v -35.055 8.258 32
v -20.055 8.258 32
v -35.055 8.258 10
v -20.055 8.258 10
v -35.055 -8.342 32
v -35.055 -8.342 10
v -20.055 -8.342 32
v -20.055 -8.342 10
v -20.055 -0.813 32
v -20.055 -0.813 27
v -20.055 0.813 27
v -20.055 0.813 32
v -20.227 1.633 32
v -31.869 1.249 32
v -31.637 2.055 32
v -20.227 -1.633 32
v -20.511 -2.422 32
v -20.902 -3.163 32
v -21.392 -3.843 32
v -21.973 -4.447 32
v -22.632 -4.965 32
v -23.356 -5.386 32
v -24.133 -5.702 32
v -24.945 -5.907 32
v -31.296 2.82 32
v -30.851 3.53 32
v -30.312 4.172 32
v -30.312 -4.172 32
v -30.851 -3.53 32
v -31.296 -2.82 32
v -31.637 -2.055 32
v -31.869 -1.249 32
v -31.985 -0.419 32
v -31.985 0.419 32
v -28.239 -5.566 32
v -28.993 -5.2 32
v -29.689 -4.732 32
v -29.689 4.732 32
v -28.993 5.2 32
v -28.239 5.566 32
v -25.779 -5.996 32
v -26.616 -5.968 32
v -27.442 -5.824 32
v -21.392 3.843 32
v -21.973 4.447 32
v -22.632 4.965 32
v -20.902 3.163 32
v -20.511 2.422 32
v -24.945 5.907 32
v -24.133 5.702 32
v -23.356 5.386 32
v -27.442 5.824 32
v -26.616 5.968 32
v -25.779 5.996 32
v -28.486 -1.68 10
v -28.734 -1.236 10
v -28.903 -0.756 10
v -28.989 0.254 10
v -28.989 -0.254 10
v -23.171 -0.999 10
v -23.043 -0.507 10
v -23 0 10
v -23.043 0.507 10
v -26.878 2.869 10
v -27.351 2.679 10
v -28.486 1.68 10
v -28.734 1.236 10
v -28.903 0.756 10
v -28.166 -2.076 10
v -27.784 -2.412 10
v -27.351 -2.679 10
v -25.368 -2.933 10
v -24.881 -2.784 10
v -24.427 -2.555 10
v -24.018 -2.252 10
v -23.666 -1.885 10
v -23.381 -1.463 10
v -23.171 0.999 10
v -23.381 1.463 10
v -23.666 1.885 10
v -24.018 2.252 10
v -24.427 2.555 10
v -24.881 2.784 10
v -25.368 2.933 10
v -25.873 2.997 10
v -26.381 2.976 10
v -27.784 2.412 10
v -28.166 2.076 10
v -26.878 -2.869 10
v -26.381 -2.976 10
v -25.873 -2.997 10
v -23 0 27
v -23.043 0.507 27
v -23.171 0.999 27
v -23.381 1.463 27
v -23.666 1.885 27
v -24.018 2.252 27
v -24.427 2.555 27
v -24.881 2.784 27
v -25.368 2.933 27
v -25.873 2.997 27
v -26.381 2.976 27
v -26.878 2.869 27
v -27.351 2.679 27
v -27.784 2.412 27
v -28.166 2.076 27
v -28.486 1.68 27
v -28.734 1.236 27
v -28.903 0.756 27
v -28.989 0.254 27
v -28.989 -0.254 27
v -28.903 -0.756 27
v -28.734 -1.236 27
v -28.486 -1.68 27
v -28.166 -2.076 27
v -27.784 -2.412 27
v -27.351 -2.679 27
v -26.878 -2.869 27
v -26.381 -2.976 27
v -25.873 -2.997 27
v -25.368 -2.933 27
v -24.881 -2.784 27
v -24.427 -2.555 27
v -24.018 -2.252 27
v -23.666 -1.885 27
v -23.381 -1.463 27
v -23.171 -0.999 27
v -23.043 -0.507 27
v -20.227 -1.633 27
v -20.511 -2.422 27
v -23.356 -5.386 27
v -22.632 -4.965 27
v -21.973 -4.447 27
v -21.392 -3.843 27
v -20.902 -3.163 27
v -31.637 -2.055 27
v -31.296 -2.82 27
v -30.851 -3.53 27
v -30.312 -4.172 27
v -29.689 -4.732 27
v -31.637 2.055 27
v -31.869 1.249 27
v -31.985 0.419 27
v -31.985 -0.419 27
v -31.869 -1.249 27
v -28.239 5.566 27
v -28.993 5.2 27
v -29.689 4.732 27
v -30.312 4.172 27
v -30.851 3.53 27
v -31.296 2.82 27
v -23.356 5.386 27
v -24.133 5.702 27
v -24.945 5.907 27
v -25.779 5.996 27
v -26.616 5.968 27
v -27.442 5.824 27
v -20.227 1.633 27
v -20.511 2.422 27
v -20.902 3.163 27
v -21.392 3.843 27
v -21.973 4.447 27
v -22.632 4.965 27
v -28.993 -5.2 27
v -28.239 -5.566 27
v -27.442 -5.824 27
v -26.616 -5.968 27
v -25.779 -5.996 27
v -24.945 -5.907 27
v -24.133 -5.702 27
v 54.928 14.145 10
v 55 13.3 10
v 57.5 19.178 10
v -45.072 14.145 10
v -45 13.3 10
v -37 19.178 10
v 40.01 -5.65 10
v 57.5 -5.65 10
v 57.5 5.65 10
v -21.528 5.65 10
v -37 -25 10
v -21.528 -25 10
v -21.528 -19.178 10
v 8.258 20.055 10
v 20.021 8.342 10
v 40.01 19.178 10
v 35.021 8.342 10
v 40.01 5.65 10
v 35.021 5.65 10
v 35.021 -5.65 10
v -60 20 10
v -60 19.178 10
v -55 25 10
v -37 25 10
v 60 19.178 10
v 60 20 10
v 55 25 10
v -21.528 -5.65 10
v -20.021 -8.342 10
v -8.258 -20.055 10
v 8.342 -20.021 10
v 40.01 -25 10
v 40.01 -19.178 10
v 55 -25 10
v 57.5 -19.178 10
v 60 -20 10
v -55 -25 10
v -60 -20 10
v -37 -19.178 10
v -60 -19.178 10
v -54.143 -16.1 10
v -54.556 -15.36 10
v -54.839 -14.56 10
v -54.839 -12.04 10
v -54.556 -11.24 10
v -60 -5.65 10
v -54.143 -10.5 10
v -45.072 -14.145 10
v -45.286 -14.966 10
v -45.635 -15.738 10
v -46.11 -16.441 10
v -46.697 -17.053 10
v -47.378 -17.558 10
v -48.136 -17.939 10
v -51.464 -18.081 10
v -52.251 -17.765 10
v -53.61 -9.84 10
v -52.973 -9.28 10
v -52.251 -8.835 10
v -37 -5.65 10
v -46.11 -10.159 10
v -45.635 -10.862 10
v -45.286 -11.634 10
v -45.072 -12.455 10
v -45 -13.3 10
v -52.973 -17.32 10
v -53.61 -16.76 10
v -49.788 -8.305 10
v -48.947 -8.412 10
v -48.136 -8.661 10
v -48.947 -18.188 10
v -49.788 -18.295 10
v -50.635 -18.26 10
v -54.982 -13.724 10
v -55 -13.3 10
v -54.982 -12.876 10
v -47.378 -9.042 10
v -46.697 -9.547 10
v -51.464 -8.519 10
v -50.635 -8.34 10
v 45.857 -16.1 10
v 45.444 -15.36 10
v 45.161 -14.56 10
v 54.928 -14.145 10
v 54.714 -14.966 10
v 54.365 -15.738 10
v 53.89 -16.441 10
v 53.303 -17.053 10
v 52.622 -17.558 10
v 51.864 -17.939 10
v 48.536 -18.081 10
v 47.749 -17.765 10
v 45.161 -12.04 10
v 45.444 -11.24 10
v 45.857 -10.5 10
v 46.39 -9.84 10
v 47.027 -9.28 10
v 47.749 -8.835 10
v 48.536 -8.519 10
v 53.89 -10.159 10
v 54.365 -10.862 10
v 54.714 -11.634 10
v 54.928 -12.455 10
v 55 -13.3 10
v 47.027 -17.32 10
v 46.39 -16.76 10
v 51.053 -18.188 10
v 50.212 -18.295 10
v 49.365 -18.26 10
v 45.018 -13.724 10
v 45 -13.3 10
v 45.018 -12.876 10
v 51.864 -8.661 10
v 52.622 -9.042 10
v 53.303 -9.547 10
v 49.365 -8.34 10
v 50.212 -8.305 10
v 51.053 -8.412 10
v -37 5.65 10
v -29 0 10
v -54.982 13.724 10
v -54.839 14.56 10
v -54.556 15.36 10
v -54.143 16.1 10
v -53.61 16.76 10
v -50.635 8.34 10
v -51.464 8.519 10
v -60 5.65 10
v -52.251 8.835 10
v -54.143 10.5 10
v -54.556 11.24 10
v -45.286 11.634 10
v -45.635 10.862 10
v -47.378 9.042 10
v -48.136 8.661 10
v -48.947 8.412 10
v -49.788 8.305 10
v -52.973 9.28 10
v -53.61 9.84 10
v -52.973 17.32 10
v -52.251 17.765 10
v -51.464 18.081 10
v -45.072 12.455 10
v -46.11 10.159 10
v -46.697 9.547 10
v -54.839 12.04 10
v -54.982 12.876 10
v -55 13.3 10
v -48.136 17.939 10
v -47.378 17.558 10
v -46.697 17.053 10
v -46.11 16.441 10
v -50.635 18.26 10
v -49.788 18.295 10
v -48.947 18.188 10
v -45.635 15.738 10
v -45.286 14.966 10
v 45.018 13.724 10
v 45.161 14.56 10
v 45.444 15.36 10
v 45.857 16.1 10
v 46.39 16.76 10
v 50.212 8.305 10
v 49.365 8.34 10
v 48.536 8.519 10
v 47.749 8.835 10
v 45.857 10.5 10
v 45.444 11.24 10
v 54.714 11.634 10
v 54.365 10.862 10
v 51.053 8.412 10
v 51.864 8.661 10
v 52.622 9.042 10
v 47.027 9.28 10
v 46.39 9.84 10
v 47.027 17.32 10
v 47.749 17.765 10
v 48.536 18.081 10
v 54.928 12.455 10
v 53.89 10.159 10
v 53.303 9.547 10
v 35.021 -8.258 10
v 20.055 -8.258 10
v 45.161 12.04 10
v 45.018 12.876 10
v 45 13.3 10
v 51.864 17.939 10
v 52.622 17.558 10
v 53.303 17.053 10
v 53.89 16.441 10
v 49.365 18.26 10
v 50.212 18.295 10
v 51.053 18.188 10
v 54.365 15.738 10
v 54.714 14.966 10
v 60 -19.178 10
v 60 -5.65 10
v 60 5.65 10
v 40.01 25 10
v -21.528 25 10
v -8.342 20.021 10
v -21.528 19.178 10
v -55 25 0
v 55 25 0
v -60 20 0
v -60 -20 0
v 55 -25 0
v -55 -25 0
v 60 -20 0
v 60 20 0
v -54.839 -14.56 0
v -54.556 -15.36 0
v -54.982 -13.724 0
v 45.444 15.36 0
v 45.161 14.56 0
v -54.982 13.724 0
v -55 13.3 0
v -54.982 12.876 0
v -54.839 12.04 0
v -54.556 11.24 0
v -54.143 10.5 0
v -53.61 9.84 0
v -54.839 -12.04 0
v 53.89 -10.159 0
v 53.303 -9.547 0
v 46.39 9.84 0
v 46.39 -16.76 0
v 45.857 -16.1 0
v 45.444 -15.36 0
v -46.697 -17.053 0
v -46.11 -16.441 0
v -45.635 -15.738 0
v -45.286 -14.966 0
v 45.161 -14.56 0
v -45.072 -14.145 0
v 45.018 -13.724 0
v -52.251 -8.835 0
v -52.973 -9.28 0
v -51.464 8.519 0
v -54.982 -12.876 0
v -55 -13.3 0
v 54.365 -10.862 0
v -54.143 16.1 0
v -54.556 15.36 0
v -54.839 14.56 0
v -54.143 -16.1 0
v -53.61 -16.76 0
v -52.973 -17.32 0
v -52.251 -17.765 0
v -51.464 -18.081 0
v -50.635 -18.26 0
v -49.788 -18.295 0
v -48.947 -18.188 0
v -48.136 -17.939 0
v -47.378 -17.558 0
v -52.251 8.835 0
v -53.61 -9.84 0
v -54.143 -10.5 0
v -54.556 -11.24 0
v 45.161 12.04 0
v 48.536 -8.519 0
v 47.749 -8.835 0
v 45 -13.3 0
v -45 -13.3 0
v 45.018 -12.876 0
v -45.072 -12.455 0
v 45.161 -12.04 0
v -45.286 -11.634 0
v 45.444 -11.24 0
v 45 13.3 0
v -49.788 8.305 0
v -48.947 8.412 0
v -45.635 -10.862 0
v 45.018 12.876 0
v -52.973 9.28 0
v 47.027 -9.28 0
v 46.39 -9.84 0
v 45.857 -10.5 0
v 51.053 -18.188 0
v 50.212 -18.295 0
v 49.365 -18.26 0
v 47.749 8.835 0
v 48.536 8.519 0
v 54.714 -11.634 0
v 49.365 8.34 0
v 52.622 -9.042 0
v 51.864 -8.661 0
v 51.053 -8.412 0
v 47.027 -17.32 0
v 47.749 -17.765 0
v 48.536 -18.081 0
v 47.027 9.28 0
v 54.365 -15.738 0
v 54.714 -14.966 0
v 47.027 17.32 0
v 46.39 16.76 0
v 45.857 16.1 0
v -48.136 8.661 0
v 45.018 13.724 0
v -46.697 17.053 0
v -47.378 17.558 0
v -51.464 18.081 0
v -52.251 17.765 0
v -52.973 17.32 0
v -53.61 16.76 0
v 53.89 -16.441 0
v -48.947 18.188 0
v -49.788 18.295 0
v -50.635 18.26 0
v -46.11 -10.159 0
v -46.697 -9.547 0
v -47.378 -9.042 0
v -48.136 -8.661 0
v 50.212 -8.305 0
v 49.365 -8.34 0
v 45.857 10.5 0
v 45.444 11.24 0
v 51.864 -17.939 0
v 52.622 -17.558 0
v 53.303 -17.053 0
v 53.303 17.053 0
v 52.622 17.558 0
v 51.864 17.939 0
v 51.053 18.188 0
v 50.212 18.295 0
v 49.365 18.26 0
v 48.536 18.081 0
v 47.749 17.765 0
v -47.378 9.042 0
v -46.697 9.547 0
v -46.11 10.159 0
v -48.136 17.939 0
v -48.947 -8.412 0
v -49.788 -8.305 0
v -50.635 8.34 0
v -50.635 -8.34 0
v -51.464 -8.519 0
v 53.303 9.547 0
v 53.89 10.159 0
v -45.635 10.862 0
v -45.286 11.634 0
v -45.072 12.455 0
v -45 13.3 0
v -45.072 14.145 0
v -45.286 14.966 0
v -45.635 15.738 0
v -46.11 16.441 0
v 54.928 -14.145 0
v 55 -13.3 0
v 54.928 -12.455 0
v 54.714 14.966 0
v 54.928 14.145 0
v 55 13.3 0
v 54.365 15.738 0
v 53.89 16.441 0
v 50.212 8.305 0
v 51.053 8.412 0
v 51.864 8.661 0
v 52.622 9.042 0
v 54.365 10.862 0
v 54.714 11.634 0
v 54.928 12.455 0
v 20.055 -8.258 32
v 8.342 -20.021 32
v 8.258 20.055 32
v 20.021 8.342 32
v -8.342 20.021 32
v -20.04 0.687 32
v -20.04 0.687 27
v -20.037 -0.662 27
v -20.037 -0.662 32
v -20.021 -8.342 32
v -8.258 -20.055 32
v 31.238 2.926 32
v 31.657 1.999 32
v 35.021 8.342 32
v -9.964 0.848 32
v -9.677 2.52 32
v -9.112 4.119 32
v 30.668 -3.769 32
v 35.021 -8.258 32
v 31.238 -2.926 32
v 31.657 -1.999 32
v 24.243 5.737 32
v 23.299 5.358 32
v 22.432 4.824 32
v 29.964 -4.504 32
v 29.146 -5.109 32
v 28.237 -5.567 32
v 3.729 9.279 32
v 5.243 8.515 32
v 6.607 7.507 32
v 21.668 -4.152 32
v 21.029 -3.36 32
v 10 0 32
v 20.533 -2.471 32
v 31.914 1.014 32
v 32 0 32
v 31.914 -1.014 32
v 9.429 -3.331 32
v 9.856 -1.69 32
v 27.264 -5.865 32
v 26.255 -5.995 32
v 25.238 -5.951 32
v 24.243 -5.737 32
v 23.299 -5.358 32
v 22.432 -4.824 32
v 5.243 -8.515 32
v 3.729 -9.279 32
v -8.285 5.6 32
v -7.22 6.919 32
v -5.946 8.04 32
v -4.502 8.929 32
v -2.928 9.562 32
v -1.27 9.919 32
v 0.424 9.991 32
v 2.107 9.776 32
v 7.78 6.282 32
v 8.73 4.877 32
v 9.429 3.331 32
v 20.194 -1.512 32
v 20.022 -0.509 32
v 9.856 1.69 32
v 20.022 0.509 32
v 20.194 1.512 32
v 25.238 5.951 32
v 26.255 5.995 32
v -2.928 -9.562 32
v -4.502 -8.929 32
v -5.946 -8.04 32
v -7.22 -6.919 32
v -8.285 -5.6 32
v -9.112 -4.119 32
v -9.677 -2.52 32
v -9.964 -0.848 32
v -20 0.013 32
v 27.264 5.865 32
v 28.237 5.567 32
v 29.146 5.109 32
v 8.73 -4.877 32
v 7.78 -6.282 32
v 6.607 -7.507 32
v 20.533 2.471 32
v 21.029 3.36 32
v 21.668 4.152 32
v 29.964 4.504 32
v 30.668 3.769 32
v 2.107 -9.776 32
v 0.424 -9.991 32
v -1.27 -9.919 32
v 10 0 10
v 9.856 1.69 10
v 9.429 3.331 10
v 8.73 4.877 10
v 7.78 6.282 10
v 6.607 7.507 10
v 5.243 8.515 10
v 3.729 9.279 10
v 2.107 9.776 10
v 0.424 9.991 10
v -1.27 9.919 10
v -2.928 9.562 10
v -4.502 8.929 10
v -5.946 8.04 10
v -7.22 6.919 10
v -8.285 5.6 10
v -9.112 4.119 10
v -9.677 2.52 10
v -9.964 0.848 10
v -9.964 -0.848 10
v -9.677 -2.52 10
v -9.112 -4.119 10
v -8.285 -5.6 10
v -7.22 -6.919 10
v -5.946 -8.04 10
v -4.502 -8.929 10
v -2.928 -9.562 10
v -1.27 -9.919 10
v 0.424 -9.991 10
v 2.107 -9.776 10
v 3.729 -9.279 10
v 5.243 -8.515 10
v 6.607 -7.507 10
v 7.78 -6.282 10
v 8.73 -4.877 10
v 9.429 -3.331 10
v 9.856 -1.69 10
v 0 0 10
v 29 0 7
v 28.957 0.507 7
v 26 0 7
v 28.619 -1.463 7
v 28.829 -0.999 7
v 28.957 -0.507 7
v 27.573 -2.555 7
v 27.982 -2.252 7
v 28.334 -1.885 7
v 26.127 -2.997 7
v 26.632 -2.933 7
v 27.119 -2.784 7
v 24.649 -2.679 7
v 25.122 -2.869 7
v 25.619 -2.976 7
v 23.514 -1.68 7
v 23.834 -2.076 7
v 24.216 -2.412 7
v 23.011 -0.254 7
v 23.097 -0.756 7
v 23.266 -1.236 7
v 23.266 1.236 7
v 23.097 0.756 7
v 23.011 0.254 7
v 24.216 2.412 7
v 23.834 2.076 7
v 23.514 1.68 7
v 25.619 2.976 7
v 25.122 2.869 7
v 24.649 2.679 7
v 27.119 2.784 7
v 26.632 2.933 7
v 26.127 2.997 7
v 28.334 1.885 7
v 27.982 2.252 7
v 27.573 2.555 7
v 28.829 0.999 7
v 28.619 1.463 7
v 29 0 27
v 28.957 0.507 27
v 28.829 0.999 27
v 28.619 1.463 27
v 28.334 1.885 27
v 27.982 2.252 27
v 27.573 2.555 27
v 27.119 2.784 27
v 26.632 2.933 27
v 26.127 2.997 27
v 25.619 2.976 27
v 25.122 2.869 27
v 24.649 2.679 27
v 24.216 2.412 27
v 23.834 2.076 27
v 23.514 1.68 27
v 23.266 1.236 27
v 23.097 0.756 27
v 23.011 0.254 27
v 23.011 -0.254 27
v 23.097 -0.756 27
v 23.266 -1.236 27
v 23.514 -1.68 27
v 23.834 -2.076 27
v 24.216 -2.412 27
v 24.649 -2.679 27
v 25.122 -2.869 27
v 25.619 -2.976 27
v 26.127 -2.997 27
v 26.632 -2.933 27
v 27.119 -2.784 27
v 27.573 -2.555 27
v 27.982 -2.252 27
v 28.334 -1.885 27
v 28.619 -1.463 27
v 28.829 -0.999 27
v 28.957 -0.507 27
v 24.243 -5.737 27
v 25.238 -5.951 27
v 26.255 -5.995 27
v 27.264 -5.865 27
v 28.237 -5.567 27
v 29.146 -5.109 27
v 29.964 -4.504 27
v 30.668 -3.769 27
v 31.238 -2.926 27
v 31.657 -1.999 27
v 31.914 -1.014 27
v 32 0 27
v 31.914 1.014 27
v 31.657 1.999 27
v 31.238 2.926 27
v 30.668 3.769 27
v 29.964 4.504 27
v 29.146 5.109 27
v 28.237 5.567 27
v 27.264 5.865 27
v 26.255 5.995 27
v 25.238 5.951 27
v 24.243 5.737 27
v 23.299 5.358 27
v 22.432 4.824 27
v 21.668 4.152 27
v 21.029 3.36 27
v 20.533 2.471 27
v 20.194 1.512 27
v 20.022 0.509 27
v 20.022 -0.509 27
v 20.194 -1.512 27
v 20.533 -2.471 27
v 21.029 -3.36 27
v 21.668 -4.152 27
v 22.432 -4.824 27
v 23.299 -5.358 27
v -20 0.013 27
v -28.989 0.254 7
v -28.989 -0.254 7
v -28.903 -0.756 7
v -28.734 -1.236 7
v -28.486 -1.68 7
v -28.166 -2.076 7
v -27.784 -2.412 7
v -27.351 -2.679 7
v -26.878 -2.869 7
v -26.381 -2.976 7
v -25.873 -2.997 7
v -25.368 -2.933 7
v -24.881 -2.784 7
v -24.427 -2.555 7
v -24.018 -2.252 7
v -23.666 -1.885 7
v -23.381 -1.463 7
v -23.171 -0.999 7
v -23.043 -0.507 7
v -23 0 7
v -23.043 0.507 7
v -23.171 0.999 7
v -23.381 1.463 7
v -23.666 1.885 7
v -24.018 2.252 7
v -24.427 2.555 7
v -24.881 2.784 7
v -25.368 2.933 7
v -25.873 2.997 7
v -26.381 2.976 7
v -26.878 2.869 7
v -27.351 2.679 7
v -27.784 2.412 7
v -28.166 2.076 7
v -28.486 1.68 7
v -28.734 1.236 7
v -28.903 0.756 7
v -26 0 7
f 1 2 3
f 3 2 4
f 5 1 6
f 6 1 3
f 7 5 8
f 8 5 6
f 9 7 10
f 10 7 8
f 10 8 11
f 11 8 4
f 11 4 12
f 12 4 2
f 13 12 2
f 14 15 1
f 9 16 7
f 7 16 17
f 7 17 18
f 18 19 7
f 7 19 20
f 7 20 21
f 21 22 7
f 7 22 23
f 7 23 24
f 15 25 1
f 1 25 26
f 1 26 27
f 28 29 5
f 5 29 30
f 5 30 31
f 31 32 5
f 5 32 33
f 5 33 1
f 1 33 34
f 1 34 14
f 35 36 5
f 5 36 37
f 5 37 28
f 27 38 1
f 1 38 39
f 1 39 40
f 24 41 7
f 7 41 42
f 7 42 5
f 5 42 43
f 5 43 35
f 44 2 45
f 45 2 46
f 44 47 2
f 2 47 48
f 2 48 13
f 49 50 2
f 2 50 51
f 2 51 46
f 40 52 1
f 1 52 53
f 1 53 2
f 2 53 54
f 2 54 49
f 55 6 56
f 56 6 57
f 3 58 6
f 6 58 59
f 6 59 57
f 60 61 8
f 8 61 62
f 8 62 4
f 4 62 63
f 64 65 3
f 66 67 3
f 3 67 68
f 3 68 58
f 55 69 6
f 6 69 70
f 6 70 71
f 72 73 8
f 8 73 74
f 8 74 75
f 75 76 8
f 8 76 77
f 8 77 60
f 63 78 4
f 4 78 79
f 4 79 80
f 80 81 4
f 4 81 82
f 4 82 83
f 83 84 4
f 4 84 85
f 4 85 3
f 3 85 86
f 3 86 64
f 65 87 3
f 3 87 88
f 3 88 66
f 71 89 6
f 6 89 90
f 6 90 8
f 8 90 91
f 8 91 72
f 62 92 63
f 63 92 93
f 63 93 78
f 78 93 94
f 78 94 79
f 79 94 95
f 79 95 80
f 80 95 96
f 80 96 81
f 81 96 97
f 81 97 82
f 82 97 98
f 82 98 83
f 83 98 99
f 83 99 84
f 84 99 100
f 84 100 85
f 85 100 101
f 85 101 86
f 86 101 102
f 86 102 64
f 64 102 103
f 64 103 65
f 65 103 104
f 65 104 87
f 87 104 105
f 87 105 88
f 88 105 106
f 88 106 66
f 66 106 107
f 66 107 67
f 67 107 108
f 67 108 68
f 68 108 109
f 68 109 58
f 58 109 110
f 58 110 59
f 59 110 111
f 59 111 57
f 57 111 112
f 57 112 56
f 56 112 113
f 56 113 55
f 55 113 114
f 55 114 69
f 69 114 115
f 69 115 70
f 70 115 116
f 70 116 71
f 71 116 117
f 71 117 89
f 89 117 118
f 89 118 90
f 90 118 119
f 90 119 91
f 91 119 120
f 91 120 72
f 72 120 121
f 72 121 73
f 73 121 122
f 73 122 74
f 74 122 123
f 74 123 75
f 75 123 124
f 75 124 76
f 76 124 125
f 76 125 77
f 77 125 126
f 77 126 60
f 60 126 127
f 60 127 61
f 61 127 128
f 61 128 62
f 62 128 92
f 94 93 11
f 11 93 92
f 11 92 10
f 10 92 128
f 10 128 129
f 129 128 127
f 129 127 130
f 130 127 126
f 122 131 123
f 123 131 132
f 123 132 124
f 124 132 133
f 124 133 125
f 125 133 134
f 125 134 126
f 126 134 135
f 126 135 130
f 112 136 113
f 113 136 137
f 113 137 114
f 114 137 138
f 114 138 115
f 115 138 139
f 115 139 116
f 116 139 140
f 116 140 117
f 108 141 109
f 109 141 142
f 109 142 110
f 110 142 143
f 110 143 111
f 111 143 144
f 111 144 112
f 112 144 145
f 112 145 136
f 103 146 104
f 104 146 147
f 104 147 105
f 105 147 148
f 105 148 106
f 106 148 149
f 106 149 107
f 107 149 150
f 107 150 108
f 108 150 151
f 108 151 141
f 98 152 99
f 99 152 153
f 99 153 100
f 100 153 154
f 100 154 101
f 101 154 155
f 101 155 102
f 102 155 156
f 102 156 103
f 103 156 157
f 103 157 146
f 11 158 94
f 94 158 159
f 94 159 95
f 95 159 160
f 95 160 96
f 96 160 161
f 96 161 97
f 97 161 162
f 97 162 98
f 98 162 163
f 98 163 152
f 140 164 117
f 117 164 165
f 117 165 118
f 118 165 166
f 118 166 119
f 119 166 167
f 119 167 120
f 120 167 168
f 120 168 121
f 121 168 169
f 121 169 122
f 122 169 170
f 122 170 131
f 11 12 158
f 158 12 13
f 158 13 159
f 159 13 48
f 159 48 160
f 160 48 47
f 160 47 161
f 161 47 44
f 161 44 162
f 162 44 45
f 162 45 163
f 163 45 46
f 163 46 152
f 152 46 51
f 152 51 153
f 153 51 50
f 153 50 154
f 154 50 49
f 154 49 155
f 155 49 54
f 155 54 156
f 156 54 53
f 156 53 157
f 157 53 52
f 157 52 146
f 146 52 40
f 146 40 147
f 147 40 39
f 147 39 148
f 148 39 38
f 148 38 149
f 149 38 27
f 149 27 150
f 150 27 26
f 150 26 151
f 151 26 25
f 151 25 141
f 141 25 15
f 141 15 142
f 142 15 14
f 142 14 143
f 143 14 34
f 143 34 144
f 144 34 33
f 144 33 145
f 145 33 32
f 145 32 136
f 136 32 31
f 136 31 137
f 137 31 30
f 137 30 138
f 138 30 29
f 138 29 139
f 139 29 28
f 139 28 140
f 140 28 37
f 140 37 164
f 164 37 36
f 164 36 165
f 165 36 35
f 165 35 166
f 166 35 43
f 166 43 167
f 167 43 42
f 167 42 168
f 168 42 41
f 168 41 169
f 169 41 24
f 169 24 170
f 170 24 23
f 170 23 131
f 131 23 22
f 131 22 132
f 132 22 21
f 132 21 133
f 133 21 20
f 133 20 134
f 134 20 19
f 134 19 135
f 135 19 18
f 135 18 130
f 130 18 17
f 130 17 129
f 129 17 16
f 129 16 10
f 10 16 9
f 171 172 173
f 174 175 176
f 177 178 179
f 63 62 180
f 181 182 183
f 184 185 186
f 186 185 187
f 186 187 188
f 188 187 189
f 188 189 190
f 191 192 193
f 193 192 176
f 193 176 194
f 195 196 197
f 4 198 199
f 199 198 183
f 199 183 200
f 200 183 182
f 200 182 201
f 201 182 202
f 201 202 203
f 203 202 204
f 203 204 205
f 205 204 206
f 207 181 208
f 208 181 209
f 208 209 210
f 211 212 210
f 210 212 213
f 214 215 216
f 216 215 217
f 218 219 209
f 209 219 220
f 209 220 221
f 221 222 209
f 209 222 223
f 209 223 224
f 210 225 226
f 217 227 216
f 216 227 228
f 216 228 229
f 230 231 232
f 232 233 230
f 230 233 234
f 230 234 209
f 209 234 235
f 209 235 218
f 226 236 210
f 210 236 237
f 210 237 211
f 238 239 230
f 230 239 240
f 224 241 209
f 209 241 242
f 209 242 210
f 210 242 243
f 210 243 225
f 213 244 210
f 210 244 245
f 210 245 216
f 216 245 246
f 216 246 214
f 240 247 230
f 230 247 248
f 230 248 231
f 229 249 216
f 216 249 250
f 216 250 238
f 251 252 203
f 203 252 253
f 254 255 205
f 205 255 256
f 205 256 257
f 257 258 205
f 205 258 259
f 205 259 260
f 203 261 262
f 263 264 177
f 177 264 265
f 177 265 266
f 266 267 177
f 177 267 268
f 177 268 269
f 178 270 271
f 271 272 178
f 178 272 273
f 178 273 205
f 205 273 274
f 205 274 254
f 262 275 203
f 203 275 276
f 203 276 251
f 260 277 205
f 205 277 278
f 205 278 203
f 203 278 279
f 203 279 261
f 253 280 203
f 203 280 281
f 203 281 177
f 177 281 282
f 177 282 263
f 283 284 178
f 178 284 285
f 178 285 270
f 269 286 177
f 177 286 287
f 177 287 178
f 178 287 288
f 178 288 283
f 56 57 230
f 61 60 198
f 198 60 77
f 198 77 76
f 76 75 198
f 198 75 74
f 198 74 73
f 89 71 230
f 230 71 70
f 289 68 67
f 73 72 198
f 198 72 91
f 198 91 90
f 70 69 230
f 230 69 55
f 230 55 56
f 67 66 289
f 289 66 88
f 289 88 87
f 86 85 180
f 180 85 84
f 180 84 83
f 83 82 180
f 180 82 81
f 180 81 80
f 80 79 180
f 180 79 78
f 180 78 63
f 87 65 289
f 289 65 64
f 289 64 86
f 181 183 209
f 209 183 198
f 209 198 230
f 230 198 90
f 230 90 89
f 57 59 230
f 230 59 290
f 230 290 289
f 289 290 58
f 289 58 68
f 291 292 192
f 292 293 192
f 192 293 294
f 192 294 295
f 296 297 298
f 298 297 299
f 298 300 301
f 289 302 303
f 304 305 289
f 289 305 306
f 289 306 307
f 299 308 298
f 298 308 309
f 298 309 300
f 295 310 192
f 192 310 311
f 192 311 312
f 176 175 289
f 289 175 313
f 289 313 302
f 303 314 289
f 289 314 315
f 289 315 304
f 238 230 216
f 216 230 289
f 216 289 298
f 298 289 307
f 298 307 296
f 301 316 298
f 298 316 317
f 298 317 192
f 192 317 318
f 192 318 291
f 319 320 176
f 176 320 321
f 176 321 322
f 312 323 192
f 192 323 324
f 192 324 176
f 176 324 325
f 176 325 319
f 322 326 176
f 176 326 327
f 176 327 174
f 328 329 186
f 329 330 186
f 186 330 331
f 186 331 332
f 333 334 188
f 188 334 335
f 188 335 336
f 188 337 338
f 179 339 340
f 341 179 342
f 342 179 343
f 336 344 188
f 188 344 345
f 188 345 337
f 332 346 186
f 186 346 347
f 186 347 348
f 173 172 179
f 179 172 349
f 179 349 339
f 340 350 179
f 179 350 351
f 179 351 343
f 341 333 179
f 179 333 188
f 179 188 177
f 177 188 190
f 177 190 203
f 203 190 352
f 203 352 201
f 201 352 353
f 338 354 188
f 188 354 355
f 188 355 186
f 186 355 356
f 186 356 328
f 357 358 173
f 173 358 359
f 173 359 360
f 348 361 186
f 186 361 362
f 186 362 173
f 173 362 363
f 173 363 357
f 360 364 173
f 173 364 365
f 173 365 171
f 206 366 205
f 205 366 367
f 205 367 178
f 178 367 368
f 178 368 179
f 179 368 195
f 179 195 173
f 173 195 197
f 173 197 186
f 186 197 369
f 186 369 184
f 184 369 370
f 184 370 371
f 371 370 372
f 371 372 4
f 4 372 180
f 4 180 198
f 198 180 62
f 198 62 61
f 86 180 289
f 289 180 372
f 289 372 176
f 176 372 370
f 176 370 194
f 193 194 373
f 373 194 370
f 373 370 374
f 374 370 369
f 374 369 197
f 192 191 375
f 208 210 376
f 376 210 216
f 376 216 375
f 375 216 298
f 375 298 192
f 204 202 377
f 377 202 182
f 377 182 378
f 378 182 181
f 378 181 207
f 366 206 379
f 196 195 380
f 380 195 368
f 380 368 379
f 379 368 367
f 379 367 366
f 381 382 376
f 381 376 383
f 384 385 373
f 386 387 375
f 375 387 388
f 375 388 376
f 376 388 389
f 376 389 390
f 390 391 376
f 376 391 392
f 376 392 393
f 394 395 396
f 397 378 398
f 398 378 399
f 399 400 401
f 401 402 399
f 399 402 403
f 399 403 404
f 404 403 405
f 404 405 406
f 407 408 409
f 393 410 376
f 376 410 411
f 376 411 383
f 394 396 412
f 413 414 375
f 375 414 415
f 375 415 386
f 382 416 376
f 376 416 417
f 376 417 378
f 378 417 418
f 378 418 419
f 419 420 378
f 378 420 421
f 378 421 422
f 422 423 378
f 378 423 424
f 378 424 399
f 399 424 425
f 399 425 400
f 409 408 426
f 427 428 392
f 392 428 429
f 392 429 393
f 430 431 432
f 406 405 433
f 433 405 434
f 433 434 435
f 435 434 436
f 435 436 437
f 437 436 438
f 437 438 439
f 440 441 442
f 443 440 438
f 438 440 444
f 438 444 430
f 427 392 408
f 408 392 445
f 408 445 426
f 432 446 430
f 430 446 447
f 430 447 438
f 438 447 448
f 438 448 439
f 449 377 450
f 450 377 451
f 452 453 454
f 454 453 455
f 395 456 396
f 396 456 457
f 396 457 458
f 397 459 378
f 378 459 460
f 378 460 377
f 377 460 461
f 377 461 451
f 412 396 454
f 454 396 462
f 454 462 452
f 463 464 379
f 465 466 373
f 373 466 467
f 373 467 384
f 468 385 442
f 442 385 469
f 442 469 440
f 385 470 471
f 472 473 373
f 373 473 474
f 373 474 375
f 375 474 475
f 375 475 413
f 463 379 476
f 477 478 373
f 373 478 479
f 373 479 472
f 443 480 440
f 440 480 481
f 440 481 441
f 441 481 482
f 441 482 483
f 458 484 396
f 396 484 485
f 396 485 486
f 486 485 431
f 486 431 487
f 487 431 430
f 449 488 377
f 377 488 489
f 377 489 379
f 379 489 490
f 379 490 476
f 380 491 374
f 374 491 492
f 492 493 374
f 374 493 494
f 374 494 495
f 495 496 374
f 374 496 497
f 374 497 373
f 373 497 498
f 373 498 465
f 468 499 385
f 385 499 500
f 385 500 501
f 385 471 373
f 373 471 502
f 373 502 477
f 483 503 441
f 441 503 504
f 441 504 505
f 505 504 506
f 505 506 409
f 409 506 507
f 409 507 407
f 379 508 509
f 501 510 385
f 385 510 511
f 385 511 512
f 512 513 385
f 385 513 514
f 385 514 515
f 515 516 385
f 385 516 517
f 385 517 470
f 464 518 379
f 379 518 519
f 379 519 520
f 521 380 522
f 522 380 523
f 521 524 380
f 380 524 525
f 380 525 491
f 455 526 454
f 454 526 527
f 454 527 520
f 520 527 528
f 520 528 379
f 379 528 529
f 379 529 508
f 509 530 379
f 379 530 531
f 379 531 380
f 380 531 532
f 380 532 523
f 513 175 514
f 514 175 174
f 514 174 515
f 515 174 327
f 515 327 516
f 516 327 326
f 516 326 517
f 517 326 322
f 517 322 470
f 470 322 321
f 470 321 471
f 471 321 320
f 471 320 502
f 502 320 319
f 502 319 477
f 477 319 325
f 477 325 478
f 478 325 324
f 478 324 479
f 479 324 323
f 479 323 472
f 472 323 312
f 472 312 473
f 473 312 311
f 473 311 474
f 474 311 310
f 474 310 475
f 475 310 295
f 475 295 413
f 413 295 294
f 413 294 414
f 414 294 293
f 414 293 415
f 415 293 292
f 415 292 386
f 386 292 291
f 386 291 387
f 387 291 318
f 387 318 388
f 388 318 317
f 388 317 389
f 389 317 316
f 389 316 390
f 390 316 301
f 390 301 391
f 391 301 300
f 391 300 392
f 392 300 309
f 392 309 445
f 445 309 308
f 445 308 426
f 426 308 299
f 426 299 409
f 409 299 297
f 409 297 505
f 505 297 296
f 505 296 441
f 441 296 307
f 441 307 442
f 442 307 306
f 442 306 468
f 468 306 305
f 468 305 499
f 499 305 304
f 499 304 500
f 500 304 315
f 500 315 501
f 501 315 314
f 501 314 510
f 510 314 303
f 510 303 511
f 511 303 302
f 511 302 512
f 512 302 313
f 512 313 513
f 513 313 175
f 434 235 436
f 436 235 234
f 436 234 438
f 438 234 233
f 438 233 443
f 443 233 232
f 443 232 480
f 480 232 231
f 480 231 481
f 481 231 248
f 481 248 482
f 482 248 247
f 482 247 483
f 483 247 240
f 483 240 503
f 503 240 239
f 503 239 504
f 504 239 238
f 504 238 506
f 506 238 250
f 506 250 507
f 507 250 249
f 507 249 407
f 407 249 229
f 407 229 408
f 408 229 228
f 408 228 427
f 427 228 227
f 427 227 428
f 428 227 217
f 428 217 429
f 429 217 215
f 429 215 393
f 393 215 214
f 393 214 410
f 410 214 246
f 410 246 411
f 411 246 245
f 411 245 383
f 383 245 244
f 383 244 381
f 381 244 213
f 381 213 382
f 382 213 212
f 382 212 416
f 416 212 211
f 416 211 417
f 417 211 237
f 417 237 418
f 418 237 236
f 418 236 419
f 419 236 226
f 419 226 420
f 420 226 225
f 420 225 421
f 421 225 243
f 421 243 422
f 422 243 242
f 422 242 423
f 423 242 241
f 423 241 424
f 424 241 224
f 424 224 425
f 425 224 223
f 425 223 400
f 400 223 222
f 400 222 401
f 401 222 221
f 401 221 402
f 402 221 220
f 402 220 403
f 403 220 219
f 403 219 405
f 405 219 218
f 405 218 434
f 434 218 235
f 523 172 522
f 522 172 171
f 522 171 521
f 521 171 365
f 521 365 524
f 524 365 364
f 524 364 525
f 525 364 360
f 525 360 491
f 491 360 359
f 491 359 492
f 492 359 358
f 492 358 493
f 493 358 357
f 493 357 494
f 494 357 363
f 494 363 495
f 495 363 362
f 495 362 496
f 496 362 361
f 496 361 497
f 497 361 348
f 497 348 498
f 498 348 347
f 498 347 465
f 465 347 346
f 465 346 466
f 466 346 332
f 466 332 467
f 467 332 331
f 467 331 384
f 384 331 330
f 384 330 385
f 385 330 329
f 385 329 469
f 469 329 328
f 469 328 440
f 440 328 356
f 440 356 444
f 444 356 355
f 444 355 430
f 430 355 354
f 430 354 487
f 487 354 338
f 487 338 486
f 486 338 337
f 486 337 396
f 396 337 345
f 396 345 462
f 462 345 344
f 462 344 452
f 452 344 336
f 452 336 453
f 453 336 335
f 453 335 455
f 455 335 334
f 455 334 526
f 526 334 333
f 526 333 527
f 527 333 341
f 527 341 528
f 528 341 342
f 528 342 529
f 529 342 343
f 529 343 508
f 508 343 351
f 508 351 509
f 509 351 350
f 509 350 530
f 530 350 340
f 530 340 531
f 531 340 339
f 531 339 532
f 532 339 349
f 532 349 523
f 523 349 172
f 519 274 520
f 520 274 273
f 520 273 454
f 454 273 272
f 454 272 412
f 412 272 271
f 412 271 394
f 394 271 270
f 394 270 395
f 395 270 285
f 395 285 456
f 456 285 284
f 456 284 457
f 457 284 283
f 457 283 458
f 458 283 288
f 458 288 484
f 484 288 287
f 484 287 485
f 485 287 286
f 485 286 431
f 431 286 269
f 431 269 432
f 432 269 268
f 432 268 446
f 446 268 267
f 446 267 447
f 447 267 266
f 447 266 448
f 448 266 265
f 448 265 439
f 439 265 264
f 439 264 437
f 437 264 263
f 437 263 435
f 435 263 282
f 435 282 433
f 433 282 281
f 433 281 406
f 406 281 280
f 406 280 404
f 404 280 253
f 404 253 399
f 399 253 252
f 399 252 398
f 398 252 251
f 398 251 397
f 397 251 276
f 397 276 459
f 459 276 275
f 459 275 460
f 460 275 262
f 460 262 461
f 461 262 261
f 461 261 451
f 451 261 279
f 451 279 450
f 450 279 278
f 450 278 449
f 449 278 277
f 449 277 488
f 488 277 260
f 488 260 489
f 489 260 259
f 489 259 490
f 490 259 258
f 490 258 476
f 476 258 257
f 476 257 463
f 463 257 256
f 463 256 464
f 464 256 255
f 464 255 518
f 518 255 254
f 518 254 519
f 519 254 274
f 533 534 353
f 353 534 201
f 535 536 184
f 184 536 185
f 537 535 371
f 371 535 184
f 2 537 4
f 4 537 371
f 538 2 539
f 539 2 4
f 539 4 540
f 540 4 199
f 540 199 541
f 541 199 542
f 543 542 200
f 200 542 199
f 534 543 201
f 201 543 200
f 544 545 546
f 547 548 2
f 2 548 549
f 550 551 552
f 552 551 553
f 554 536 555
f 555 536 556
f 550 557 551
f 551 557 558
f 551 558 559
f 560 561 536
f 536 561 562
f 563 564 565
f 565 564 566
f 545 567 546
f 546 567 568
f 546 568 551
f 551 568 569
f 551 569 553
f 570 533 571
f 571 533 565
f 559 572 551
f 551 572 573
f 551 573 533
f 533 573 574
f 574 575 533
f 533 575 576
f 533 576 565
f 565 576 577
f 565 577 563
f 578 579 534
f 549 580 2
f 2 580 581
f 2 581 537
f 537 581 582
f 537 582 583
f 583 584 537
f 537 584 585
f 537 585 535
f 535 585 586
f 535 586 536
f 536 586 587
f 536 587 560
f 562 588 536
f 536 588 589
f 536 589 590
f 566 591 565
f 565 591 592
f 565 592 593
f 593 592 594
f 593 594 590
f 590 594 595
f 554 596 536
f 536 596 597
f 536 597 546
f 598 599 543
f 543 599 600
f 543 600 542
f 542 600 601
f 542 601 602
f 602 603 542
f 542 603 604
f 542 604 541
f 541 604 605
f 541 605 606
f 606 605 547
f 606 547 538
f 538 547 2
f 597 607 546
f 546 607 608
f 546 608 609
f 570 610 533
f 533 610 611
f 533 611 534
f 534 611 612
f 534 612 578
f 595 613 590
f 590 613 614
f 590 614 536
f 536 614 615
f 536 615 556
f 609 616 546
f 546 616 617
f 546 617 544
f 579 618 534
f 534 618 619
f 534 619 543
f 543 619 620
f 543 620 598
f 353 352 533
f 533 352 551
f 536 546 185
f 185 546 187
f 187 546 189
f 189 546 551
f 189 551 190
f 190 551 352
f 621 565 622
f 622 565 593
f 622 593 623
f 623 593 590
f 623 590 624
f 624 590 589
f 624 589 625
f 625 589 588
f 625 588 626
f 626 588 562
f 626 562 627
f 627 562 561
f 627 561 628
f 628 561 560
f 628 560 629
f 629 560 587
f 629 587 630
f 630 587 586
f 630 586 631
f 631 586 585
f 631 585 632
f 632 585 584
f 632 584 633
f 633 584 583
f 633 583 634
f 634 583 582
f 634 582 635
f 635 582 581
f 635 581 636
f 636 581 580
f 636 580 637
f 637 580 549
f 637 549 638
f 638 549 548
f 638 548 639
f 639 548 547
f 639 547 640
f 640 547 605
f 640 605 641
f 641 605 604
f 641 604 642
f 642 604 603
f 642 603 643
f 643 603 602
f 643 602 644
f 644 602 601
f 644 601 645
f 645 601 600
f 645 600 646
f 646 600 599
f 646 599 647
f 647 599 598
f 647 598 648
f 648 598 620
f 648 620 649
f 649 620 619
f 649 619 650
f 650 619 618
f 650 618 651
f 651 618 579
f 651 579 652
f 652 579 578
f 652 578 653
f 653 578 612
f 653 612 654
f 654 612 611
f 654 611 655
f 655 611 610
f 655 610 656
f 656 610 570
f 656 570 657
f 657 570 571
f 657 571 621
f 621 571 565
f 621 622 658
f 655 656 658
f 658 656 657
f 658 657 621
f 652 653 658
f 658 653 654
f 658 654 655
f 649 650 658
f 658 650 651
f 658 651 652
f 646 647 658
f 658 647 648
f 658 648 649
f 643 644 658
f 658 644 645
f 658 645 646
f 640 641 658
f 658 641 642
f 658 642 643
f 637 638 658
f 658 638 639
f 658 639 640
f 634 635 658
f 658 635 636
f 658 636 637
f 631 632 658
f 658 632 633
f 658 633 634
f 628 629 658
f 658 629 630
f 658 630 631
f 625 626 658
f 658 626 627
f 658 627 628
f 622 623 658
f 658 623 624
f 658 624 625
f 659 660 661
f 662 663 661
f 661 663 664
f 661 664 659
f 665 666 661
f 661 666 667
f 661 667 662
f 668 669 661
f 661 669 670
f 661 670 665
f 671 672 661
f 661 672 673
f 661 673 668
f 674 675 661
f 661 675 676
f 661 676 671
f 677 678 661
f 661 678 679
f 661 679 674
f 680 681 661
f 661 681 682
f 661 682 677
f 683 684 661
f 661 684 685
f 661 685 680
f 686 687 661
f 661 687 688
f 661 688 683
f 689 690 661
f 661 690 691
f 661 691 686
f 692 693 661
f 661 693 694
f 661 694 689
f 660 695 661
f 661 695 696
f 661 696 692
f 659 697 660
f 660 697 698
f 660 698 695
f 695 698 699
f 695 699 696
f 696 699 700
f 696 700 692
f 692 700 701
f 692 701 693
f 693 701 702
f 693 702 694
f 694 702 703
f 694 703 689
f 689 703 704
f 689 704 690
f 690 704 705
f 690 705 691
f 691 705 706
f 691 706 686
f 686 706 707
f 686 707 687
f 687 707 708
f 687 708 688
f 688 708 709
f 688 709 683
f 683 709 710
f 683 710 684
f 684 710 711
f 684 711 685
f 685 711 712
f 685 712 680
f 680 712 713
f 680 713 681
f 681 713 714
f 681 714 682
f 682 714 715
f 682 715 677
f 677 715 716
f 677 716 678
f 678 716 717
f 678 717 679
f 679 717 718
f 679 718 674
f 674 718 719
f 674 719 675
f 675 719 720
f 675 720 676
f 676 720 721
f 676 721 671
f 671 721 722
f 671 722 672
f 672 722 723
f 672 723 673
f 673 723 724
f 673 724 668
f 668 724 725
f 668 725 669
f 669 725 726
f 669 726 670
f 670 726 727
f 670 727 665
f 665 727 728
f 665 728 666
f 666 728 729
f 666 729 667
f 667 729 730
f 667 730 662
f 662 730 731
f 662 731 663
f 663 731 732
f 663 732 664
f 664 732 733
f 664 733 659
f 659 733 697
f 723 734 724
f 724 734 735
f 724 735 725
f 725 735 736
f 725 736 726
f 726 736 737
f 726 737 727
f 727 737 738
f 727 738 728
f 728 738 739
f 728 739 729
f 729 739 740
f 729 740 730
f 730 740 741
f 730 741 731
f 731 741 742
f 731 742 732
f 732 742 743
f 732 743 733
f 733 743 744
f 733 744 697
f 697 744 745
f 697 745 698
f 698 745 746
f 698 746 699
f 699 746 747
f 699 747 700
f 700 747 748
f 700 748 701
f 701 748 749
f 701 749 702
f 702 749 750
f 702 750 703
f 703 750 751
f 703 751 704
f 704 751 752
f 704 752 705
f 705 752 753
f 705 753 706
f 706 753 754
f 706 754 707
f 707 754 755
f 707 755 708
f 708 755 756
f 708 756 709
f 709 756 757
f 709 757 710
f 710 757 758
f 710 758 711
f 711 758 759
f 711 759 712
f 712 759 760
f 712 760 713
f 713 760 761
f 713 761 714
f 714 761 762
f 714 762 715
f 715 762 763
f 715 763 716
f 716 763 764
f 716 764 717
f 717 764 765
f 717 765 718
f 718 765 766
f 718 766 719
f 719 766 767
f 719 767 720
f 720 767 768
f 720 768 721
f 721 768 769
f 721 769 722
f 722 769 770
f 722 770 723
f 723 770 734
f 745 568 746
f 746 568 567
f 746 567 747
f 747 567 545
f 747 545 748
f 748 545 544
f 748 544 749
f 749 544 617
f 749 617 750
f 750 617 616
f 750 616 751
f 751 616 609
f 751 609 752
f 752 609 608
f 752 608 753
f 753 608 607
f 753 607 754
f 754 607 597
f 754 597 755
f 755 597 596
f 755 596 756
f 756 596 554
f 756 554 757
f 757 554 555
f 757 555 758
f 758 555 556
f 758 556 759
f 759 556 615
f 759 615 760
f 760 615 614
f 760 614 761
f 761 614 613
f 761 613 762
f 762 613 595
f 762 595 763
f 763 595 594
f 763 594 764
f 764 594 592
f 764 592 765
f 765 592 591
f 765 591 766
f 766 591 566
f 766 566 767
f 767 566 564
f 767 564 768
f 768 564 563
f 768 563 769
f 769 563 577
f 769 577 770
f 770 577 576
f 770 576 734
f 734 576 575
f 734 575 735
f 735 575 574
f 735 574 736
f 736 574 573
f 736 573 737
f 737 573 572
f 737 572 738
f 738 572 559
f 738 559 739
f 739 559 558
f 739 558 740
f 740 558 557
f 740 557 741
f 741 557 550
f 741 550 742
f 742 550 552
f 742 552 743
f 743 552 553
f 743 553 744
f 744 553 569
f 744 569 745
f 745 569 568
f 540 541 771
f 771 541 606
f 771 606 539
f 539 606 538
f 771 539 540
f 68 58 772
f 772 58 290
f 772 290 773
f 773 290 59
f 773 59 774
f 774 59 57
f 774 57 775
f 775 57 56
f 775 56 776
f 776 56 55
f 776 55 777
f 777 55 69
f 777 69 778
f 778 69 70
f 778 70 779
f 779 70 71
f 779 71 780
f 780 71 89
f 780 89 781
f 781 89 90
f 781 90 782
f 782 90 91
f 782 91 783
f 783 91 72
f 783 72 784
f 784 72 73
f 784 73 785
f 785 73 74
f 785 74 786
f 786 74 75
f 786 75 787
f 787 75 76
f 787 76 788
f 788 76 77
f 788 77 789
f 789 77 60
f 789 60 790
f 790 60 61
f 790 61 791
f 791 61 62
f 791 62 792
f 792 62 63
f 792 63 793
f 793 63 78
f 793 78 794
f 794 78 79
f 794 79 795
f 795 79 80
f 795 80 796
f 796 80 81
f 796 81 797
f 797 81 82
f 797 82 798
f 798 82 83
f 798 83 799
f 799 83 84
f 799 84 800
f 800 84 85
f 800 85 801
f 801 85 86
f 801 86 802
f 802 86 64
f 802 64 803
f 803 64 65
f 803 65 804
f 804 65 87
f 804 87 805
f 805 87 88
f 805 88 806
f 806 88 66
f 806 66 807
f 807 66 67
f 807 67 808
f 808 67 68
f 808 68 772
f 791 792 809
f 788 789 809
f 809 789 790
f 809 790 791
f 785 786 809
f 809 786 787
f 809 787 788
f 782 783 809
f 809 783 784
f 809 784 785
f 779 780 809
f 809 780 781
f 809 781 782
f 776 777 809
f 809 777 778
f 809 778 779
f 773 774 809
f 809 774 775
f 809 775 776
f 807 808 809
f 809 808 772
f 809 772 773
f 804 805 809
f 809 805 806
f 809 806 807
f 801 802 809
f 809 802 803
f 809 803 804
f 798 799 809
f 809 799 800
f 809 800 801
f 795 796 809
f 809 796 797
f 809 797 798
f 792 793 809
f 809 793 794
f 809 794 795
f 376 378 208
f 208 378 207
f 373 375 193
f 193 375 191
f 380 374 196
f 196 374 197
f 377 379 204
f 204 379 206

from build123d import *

# Parameters (mm, degrees)
SKETCH_1_W                 = 120
SKETCH_1_H                 = 50
EXTRUDE_1_DEPTH            = 10
CUT_EXTRUDE_START          = 10
SKETCH_1_4_R               = 5
CUT_EXTRUDE_1_DEPTH        = 76.76473219
SKETCH_1_5_R               = 5
CUT_EXTRUDE_2_DEPTH        = 76.76473219
SKETCH_1_6_R               = 5
CUT_EXTRUDE_3_DEPTH        = 76.76473219
SKETCH_1_7_R               = 5
CUT_EXTRUDE_4_DEPTH        = 76.76473219
EXTRUDE_START              = 10
EXTRUDE_2_DEPTH            = 22
SKETCH_1_9_W               = 15
SKETCH_1_9_H               = 16.6
EXTRUDE_7_DEPTH            = 22
SKETCH_1_10_W              = 15
SKETCH_1_10_H              = 16.6
EXTRUDE_8_DEPTH            = 22
CUT_EXTRUDE_START_2        = 32
SKETCH_1_11_R              = 10
CUT_EXTRUDE_5_DEPTH        = 22
HOLE_WIZARD_M52_AT_2_COUNT = 2
HOLE_WIZARD_M52_AT_2_PITCH = 52
CHAMFER_4_SIZE             = 5


with BuildPart() as part:
    # Эскиз1 → Бобышка-Вытянуть1 (new body)
    with BuildSketch(Plane.XY):
        Rectangle(SKETCH_1_W, SKETCH_1_H)
    extrude(amount=EXTRUDE_1_DEPTH)

    # Эскиз1<4> → Вырез-Вытянуть1 (cut, through all)
    with BuildSketch(Plane.XY.offset(CUT_EXTRUDE_START)):
        with Locations(Location((-50, 13.3, 0), (0, 0, 180))):
            Circle(SKETCH_1_4_R)
    extrude(amount=-CUT_EXTRUDE_1_DEPTH, mode=Mode.SUBTRACT)

    # Эскиз1<5> → Вырез-Вытянуть2 (cut, through all)
    with BuildSketch(Plane.XY.offset(CUT_EXTRUDE_START)):
        with Locations(Location((-50, -13.3, 0), (0, 0, 180))):
            Circle(SKETCH_1_5_R)
    extrude(amount=-CUT_EXTRUDE_2_DEPTH, mode=Mode.SUBTRACT)

    # Эскиз1<6> → Вырез-Вытянуть3 (cut, through all)
    with BuildSketch(Plane.XY.offset(CUT_EXTRUDE_START)):
        with Locations(Location((50, 13.3, 0), (0, 0, 180))):
            Circle(SKETCH_1_6_R)
    extrude(amount=-CUT_EXTRUDE_3_DEPTH, mode=Mode.SUBTRACT)

    # Эскиз1<7> → Вырез-Вытянуть4 (cut, through all)
    with BuildSketch(Plane.XY.offset(CUT_EXTRUDE_START)):
        with Locations(Location((50, -13.3, 0), (0, 0, 180))):
            Circle(SKETCH_1_7_R)
    extrude(amount=-CUT_EXTRUDE_4_DEPTH, mode=Mode.SUBTRACT)

    # Эскиз1<8> → Бобышка-Вытянуть2 (add)
    with BuildSketch(Plane.XY.offset(EXTRUDE_START)):
        Polygon((20.055336508, -8.258079739), (20.020608627, 8.341920261), (8.258079739, 20.055336508), (-8.341920261, 20.020608627), (-20.055336508, 8.258079739), (-20.020608627, -8.341920261), (-8.258079739, -20.055336508), (8.341920261, -20.020608627), align=None)
    extrude(amount=EXTRUDE_2_DEPTH)

    # Эскиз1<10> → Бобышка-Вытянуть8 (add)
    with BuildSketch(Plane.XY.offset(EXTRUDE_START)):
        with Locations((27.520608627, 0.041920261)):
            Rectangle(SKETCH_1_10_W, SKETCH_1_10_H)
    extrude(amount=EXTRUDE_8_DEPTH)

    # Эскиз1<11> → Вырез-Вытянуть5 (cut)
    with BuildSketch(Plane.XY.offset(CUT_EXTRUDE_START_2)):
        Circle(SKETCH_1_11_R)
    extrude(amount=-CUT_EXTRUDE_5_DEPTH, mode=Mode.SUBTRACT)


with BuildPart() as body_2:
    # Эскиз1<9> → Бобышка-Вытянуть7 (new body)
    with BuildSketch(Plane.XY.offset(EXTRUDE_START)):
        with Locations((-27.555336508, -0.041920261)):
            Rectangle(SKETCH_1_9_W, SKETCH_1_9_H)
    extrude(amount=EXTRUDE_7_DEPTH)


with BuildPart() as hole_wizard_m52_tool:
    # Эскиз11 → Цековка для  болта с шестигранной головкой M52 (revolve)
    with BuildSketch(Plane(origin=(-26, 0, 32), x_dir=(0, -1, 0), z_dir=(1, 0, 0))):
        Polygon((0, 0), (0, 25), (3, 25), (3, 5), (6, 5), (6, 0), align=None)
    hole_wizard_m52 = revolve(axis=Axis((-26, 0, 38.35), (0, 0, -1)))


with BuildPart() as part_1:
    add(part.part)

    # Цековка для  болта с шестигранной головкой M52: cut by hole_wizard_m52_tool
    add(hole_wizard_m52_tool.part, mode=Mode.SUBTRACT)

    # Цековка для  болта с шестигранной головкой M52 at 2: Цековка для  болта с шестигранной головкой M52 ×2
    with Locations(*[(i * HOLE_WIZARD_M52_AT_2_PITCH, 0, 0) for i in range(1, HOLE_WIZARD_M52_AT_2_COUNT)]):
        add(hole_wizard_m52, mode=Mode.SUBTRACT)

    # Фаска4
    chamfer_4_edges = [part_1.edges().sort_by_distance(p)[0] for p in [
        (-60, 25, 5),
        (-60, -25, 5),
        (60, -25, 5),
        (60, 25, 5),
    ]]
    chamfer(chamfer_4_edges, length=CHAMFER_4_SIZE)


with BuildPart() as body_2_1:
    add(body_2.part)

    # Цековка для  болта с шестигранной головкой M52: cut by hole_wizard_m52_tool
    add(hole_wizard_m52_tool.part, mode=Mode.SUBTRACT)


solid = Compound([part_1.part, body_2_1.part])
